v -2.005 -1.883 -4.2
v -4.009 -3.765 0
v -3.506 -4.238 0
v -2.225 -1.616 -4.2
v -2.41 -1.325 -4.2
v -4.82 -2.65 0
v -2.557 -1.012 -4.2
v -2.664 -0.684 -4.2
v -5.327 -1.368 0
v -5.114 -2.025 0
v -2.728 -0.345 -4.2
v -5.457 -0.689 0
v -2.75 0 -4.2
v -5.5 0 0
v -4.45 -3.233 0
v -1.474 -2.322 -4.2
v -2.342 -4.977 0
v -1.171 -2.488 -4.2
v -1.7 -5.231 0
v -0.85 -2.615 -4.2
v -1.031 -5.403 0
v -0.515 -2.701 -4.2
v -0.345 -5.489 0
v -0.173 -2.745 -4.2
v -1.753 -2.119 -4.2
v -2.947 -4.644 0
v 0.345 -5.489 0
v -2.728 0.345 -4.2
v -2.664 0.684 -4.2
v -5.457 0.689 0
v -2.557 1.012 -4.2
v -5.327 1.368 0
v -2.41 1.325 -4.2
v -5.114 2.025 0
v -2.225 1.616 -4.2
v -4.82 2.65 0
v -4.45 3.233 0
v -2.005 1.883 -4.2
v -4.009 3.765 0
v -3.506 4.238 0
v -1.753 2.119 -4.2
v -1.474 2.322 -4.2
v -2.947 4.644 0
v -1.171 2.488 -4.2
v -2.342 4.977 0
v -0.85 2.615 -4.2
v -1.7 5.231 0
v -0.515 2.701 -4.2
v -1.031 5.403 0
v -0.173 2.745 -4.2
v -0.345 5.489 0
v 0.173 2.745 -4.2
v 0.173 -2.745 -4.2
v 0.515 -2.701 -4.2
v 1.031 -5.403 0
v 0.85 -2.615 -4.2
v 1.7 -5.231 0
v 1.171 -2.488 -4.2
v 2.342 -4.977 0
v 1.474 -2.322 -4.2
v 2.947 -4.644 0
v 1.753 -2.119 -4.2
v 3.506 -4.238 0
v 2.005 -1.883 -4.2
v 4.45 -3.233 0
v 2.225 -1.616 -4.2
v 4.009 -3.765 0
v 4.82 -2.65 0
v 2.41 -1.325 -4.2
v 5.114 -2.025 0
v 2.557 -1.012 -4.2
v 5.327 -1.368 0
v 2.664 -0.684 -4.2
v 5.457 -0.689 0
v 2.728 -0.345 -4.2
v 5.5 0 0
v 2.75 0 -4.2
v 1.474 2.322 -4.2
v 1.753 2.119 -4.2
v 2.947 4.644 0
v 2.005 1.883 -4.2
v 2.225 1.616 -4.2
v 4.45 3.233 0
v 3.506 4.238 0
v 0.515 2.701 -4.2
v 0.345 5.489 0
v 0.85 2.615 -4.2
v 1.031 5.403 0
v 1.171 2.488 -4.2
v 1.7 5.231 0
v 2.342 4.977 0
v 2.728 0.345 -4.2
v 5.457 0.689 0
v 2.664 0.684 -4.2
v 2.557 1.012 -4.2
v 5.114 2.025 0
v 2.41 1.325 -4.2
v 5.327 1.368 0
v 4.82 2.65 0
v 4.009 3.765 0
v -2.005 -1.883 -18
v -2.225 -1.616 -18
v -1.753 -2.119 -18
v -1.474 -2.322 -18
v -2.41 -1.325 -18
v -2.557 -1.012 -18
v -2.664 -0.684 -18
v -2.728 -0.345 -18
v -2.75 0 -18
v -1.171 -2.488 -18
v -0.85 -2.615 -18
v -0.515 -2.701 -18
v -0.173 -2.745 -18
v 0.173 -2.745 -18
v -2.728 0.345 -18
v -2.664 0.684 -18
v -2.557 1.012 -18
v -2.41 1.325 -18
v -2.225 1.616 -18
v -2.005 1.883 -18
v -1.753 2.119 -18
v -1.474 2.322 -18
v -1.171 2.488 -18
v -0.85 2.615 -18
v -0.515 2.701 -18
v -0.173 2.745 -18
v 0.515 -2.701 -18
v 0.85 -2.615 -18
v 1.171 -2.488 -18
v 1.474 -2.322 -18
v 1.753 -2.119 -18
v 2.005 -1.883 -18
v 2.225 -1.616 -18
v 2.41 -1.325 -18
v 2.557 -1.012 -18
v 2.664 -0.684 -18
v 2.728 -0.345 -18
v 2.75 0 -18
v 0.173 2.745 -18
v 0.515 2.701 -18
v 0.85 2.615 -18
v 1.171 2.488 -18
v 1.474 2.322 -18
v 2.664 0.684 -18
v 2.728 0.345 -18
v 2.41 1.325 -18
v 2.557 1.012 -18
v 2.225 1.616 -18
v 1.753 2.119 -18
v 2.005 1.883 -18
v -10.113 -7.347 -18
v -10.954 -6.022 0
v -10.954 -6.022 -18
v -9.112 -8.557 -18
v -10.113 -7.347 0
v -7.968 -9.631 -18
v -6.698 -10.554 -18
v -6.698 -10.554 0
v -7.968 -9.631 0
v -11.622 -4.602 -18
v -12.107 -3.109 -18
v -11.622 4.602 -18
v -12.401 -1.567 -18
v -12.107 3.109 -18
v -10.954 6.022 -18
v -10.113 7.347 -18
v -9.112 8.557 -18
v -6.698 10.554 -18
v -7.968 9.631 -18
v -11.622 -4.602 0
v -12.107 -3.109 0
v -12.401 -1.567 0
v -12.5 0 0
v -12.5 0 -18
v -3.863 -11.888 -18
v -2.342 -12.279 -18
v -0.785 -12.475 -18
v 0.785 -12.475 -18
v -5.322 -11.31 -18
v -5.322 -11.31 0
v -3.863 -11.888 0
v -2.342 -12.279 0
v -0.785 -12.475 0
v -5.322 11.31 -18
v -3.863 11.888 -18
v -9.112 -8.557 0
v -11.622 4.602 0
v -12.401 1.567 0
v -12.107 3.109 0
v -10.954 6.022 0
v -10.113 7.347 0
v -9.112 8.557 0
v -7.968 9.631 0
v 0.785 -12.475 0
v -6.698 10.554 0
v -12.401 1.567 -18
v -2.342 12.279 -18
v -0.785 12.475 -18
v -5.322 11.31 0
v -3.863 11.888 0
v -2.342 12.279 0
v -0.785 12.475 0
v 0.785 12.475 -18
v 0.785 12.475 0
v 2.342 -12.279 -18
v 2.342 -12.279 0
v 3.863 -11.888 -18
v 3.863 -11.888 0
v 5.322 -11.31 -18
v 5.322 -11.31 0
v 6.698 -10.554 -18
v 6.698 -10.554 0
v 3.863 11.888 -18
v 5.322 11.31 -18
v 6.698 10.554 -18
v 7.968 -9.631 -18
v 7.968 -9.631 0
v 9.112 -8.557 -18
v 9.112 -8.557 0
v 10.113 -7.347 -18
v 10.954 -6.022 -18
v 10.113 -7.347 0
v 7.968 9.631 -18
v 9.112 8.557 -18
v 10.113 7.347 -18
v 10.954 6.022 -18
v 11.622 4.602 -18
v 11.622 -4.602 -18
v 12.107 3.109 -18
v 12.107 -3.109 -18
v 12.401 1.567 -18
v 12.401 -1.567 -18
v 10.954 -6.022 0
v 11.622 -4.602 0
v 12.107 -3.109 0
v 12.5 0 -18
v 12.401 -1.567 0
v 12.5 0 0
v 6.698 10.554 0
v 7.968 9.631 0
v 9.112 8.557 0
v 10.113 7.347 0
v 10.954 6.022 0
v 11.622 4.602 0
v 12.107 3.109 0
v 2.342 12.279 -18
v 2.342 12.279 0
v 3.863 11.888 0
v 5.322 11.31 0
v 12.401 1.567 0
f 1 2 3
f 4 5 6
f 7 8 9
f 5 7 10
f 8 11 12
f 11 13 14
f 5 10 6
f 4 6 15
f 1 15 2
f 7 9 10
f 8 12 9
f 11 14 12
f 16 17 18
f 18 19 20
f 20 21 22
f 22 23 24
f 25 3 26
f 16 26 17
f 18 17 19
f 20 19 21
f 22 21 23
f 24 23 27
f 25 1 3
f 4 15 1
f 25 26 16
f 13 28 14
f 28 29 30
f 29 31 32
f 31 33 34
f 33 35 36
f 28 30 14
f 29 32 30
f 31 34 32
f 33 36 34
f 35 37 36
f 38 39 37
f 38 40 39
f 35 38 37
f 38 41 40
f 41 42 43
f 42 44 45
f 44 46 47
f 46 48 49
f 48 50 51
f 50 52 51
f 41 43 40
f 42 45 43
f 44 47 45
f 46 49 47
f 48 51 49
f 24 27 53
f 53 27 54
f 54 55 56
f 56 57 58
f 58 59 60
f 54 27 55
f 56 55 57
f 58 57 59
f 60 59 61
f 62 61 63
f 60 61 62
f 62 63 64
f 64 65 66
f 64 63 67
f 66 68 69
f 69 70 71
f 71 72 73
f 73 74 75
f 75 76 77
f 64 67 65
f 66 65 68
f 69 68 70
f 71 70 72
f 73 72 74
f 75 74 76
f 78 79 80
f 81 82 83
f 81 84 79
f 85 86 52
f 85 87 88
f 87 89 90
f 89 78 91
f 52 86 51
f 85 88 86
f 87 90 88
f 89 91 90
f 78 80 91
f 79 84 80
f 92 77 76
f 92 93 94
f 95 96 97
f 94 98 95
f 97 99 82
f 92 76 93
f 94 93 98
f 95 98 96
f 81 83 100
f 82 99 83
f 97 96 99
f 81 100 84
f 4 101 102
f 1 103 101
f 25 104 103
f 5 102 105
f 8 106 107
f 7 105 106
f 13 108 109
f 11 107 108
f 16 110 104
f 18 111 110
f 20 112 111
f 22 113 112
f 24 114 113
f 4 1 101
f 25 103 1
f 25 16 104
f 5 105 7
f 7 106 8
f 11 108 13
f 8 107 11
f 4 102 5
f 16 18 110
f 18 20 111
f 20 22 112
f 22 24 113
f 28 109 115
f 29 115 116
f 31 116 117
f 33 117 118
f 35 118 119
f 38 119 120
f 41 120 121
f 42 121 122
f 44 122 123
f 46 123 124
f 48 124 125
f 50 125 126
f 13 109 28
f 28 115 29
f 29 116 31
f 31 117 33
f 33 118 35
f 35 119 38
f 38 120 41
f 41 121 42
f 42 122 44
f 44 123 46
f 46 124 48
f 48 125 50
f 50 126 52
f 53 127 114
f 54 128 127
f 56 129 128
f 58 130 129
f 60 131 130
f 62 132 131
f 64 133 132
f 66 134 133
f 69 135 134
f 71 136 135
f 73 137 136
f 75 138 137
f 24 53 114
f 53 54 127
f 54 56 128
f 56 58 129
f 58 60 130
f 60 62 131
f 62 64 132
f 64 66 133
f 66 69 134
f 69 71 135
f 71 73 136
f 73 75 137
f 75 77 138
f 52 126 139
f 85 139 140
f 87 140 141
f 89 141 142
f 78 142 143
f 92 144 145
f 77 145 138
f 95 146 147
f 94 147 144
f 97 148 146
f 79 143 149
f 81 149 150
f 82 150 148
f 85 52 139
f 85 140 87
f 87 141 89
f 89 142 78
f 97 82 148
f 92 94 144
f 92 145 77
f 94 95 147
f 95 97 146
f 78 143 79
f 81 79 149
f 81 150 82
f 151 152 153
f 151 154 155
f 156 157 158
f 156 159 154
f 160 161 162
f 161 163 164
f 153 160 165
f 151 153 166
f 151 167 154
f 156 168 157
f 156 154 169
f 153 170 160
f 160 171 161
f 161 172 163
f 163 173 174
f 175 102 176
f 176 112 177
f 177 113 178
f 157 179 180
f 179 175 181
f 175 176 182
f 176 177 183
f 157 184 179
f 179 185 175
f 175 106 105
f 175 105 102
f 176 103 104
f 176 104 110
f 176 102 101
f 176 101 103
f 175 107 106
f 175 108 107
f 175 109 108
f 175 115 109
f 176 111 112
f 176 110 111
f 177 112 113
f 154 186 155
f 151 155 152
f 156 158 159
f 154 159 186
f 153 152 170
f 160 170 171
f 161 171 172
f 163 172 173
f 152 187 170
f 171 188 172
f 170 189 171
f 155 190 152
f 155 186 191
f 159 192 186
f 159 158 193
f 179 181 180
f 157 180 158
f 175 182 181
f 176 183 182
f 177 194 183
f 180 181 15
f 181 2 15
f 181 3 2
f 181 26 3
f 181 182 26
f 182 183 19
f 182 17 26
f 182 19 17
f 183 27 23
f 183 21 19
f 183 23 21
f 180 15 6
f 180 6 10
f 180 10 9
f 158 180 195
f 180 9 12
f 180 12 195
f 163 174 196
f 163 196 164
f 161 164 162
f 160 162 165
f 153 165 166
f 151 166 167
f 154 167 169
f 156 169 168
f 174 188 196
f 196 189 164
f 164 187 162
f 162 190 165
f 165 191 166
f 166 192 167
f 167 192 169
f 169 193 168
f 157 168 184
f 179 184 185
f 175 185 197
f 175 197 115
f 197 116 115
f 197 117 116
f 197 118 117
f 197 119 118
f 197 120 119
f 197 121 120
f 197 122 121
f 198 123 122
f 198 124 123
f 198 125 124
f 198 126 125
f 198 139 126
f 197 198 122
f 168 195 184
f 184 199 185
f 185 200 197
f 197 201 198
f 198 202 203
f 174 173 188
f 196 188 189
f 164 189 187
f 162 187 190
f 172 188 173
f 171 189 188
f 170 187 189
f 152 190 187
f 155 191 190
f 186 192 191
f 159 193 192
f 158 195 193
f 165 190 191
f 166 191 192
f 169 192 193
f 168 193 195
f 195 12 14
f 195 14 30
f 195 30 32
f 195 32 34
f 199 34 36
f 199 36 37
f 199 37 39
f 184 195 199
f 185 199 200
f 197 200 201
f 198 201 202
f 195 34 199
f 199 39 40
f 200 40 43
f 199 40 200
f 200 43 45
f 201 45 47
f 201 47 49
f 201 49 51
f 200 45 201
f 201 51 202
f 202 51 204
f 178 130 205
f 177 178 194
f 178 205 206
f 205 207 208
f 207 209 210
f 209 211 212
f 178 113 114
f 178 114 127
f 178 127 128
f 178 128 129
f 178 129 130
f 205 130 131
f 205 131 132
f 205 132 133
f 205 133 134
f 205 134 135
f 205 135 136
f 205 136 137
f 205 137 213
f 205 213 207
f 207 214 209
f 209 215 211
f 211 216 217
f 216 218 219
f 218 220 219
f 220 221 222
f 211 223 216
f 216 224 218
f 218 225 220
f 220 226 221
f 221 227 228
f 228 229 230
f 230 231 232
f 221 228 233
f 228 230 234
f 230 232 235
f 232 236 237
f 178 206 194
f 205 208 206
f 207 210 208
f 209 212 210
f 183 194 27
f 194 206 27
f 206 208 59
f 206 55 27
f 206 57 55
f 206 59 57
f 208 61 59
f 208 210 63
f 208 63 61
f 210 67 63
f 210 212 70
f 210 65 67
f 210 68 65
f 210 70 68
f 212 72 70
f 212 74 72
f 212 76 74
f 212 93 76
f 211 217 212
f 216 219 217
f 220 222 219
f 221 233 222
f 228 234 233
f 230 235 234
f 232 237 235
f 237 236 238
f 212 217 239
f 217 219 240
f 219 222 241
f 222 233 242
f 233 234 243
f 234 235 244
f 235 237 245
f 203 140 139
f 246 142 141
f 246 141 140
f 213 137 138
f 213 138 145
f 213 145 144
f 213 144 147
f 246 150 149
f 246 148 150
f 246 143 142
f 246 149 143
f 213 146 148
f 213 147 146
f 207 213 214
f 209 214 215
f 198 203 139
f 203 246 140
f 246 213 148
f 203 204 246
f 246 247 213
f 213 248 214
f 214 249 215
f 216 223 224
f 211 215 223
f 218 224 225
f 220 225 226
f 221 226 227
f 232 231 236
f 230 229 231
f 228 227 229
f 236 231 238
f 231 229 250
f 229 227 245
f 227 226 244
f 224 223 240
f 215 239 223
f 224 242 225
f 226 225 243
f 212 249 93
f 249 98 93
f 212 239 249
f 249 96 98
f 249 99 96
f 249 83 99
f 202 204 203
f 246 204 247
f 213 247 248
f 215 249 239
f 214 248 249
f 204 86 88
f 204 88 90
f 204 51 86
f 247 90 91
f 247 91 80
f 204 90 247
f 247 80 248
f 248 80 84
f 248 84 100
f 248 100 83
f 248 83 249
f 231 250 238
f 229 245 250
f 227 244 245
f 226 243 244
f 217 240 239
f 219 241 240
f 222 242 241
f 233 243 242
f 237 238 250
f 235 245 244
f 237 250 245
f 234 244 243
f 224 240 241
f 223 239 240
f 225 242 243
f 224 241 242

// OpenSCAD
$fn = 50;


difference() {
	union() {
		translate(v = [0, 0, -18.0000000000]) {
			cylinder(h = 18, r = 12.5000000000);
		}
	}
	union() {
		translate(v = [0, 0, 0]) {
			rotate(a = [0, 0, 0]) {
				difference() {
					union() {
						translate(v = [0, 0, -21.0000000000]) {
							cylinder(h = 21, r = 2.2500000000);
						}
						translate(v = [0, 0, -4.2000000000]) {
							cylinder(h = 4.2000000000, r1 = 2.7500000000, r2 = 5.5000000000);
						}
						translate(v = [0, 0, -21.0000000000]) {
							cylinder(h = 21, r = 2.7500000000);
						}
						translate(v = [0, 0, -21.0000000000]) {
							cylinder(h = 21, r = 2.2500000000);
						}
					}
					union();
				}
			}
		}
	}
}
